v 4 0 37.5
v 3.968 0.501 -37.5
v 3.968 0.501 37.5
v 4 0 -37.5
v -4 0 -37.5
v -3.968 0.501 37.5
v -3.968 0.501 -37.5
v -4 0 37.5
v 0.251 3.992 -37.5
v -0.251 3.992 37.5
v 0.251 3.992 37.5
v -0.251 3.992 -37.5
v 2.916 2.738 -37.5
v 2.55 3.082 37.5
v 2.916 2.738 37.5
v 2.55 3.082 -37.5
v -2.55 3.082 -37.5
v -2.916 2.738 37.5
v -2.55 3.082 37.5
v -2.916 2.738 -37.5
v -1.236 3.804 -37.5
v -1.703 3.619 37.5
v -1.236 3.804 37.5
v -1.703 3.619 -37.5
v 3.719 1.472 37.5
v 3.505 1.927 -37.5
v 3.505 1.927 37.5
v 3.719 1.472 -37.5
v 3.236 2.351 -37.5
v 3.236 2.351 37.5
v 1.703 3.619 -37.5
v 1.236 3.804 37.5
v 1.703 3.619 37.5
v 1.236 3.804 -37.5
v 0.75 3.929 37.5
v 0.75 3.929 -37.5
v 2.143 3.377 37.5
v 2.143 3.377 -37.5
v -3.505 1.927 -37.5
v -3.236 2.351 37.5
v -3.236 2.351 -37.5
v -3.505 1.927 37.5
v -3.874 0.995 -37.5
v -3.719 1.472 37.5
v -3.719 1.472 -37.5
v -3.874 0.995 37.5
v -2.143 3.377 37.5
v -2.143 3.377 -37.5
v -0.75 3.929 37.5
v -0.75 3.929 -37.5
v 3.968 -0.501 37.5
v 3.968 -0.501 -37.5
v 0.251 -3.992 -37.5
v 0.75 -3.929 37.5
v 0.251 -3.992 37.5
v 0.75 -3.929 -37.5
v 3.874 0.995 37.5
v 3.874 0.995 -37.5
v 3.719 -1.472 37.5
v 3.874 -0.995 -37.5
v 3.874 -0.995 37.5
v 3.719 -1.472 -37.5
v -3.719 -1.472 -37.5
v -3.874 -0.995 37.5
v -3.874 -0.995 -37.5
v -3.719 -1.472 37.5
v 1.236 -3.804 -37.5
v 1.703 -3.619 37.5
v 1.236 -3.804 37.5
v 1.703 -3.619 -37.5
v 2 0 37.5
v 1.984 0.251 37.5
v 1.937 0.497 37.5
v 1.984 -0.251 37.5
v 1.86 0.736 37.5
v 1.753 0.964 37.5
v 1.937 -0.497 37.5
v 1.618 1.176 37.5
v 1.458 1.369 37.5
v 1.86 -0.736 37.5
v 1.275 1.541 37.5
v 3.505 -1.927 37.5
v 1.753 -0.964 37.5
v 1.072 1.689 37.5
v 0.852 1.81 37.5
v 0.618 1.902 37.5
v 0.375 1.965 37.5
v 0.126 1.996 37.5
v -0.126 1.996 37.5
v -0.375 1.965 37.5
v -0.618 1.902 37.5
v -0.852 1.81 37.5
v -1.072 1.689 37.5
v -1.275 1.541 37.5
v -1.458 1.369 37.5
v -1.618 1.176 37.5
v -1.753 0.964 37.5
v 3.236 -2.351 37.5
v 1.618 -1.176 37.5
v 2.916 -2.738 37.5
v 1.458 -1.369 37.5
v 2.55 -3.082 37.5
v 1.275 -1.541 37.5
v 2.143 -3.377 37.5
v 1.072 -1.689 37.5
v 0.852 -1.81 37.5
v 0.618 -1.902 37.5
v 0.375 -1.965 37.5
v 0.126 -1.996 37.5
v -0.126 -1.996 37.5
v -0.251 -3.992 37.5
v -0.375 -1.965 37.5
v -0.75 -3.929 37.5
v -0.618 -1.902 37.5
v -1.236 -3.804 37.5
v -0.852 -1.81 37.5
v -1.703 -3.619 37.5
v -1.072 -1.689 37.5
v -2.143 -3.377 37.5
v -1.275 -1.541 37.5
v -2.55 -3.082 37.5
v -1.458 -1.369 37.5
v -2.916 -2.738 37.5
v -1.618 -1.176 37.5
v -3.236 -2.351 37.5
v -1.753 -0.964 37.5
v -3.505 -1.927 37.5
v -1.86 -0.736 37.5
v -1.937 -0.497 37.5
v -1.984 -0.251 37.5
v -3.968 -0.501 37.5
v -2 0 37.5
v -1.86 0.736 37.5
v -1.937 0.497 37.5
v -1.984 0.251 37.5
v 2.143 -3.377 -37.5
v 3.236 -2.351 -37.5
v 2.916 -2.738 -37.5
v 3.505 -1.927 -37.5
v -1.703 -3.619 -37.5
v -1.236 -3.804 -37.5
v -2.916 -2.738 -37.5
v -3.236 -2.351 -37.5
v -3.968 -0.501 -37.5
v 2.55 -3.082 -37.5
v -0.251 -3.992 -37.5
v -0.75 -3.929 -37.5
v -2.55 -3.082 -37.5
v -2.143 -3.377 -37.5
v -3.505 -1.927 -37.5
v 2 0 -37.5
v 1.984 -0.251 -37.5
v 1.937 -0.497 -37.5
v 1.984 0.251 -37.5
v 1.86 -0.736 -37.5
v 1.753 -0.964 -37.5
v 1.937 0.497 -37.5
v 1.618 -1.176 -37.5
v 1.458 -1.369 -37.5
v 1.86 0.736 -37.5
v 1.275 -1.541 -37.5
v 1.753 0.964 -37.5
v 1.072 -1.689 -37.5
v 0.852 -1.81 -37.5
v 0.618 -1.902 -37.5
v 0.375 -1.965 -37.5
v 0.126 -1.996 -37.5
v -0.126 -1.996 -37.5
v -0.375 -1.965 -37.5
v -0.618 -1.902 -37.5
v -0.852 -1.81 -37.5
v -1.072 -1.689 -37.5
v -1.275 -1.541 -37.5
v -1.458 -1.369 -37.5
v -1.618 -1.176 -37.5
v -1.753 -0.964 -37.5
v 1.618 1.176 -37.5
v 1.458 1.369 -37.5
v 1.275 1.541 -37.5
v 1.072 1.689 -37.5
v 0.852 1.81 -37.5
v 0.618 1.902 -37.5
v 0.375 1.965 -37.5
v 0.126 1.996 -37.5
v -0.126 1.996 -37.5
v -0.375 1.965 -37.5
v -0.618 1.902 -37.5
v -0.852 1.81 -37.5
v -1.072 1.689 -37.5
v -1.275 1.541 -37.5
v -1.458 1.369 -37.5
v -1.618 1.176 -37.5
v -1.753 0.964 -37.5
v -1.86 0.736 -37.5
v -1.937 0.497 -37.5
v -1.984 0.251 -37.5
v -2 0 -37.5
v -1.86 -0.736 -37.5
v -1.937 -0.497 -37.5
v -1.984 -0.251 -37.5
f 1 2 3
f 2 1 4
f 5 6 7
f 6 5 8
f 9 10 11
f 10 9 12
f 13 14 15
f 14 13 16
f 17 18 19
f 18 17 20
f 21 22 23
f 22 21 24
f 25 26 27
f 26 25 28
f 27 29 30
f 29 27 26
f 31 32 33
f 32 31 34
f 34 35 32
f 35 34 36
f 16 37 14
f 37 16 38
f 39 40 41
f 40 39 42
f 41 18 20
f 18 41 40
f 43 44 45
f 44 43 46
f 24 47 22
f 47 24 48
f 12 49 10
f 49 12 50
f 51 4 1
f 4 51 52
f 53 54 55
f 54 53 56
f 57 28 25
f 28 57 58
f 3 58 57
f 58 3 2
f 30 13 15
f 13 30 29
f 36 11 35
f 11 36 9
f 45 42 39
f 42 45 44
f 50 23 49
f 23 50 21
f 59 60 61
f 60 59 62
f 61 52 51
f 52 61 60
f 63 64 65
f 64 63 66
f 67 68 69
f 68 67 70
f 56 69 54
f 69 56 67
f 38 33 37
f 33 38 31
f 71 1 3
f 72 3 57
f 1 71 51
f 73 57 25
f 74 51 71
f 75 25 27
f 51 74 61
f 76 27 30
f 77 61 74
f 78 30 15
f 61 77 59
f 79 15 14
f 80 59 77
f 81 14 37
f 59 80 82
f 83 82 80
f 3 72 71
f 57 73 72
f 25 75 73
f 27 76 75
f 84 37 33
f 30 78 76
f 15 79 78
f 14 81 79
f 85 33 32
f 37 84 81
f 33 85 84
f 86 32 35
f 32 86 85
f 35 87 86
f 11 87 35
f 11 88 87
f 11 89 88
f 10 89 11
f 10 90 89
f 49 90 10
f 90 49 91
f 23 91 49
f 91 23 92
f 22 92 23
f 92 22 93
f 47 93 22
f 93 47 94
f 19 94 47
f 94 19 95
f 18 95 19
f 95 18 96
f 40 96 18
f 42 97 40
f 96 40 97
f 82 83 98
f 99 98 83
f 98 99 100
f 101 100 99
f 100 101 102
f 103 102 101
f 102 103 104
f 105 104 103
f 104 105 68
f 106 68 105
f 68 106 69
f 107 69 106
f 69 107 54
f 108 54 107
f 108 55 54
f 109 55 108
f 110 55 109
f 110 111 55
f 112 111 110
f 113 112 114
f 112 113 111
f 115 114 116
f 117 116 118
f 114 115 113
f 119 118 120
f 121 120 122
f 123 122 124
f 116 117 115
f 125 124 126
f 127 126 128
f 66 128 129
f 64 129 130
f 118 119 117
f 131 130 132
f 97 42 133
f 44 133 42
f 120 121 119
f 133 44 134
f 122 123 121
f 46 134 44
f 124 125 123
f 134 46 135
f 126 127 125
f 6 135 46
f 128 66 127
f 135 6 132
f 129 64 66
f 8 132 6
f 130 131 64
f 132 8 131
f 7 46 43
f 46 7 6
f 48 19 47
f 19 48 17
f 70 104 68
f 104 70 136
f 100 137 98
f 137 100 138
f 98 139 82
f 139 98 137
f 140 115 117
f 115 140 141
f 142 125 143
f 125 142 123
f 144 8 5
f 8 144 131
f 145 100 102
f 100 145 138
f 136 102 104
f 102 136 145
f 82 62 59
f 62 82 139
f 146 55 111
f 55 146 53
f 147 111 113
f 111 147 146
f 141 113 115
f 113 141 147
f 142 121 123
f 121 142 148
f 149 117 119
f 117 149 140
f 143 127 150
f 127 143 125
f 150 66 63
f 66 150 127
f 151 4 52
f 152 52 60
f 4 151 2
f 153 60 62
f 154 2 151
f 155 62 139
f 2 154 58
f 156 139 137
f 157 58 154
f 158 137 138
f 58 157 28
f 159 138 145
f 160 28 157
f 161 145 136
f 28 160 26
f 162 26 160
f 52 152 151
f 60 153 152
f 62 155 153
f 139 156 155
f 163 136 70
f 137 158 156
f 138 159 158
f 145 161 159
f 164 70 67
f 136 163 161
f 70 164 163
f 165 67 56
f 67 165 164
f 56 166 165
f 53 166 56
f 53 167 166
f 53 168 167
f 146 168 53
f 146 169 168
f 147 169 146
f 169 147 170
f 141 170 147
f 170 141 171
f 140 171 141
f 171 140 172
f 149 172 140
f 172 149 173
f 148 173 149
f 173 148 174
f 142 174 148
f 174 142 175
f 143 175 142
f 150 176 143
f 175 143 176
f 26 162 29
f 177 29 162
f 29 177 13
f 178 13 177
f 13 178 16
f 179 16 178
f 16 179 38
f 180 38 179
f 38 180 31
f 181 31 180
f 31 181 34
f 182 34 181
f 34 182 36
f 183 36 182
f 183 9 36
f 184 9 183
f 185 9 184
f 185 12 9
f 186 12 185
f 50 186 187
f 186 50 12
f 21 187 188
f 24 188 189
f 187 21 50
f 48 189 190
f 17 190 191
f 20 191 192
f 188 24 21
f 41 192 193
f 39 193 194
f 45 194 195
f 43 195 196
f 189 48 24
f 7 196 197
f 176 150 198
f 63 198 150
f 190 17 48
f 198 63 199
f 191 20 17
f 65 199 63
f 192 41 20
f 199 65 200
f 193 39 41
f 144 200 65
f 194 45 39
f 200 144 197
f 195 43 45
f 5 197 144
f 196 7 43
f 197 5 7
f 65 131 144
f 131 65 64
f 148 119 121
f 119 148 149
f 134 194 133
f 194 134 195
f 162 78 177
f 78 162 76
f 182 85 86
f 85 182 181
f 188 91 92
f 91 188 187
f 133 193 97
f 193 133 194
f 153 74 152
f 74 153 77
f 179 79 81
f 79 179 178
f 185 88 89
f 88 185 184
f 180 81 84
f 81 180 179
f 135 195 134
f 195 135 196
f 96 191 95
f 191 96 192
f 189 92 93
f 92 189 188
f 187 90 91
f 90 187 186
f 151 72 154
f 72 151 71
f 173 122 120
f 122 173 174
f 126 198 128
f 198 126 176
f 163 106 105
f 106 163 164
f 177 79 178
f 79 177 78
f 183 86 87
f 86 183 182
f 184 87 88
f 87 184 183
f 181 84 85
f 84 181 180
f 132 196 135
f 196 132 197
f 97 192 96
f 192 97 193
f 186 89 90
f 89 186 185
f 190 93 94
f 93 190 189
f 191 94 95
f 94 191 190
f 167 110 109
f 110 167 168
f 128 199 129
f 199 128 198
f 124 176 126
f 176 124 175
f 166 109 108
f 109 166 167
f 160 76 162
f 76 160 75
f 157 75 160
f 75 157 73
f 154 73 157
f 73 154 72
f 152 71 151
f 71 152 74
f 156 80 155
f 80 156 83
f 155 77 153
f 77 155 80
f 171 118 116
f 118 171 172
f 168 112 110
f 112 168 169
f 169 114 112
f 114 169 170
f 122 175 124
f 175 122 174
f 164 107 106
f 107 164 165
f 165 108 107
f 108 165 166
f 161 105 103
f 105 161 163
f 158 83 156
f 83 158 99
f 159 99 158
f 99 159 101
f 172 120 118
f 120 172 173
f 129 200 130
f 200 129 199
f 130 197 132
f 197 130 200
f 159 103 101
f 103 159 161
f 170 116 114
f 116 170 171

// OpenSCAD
$fn = 50;


difference() {
	union() {
		translate(v = [0, 0, -37.5000000000]) {
			cylinder(h = 75, r = 4.0000000000);
		}
	}
	union() {
		translate(v = [0, 0, -100.0000000000]) {
			cylinder(h = 200, r = 2.0000000000);
		}
	}
}
